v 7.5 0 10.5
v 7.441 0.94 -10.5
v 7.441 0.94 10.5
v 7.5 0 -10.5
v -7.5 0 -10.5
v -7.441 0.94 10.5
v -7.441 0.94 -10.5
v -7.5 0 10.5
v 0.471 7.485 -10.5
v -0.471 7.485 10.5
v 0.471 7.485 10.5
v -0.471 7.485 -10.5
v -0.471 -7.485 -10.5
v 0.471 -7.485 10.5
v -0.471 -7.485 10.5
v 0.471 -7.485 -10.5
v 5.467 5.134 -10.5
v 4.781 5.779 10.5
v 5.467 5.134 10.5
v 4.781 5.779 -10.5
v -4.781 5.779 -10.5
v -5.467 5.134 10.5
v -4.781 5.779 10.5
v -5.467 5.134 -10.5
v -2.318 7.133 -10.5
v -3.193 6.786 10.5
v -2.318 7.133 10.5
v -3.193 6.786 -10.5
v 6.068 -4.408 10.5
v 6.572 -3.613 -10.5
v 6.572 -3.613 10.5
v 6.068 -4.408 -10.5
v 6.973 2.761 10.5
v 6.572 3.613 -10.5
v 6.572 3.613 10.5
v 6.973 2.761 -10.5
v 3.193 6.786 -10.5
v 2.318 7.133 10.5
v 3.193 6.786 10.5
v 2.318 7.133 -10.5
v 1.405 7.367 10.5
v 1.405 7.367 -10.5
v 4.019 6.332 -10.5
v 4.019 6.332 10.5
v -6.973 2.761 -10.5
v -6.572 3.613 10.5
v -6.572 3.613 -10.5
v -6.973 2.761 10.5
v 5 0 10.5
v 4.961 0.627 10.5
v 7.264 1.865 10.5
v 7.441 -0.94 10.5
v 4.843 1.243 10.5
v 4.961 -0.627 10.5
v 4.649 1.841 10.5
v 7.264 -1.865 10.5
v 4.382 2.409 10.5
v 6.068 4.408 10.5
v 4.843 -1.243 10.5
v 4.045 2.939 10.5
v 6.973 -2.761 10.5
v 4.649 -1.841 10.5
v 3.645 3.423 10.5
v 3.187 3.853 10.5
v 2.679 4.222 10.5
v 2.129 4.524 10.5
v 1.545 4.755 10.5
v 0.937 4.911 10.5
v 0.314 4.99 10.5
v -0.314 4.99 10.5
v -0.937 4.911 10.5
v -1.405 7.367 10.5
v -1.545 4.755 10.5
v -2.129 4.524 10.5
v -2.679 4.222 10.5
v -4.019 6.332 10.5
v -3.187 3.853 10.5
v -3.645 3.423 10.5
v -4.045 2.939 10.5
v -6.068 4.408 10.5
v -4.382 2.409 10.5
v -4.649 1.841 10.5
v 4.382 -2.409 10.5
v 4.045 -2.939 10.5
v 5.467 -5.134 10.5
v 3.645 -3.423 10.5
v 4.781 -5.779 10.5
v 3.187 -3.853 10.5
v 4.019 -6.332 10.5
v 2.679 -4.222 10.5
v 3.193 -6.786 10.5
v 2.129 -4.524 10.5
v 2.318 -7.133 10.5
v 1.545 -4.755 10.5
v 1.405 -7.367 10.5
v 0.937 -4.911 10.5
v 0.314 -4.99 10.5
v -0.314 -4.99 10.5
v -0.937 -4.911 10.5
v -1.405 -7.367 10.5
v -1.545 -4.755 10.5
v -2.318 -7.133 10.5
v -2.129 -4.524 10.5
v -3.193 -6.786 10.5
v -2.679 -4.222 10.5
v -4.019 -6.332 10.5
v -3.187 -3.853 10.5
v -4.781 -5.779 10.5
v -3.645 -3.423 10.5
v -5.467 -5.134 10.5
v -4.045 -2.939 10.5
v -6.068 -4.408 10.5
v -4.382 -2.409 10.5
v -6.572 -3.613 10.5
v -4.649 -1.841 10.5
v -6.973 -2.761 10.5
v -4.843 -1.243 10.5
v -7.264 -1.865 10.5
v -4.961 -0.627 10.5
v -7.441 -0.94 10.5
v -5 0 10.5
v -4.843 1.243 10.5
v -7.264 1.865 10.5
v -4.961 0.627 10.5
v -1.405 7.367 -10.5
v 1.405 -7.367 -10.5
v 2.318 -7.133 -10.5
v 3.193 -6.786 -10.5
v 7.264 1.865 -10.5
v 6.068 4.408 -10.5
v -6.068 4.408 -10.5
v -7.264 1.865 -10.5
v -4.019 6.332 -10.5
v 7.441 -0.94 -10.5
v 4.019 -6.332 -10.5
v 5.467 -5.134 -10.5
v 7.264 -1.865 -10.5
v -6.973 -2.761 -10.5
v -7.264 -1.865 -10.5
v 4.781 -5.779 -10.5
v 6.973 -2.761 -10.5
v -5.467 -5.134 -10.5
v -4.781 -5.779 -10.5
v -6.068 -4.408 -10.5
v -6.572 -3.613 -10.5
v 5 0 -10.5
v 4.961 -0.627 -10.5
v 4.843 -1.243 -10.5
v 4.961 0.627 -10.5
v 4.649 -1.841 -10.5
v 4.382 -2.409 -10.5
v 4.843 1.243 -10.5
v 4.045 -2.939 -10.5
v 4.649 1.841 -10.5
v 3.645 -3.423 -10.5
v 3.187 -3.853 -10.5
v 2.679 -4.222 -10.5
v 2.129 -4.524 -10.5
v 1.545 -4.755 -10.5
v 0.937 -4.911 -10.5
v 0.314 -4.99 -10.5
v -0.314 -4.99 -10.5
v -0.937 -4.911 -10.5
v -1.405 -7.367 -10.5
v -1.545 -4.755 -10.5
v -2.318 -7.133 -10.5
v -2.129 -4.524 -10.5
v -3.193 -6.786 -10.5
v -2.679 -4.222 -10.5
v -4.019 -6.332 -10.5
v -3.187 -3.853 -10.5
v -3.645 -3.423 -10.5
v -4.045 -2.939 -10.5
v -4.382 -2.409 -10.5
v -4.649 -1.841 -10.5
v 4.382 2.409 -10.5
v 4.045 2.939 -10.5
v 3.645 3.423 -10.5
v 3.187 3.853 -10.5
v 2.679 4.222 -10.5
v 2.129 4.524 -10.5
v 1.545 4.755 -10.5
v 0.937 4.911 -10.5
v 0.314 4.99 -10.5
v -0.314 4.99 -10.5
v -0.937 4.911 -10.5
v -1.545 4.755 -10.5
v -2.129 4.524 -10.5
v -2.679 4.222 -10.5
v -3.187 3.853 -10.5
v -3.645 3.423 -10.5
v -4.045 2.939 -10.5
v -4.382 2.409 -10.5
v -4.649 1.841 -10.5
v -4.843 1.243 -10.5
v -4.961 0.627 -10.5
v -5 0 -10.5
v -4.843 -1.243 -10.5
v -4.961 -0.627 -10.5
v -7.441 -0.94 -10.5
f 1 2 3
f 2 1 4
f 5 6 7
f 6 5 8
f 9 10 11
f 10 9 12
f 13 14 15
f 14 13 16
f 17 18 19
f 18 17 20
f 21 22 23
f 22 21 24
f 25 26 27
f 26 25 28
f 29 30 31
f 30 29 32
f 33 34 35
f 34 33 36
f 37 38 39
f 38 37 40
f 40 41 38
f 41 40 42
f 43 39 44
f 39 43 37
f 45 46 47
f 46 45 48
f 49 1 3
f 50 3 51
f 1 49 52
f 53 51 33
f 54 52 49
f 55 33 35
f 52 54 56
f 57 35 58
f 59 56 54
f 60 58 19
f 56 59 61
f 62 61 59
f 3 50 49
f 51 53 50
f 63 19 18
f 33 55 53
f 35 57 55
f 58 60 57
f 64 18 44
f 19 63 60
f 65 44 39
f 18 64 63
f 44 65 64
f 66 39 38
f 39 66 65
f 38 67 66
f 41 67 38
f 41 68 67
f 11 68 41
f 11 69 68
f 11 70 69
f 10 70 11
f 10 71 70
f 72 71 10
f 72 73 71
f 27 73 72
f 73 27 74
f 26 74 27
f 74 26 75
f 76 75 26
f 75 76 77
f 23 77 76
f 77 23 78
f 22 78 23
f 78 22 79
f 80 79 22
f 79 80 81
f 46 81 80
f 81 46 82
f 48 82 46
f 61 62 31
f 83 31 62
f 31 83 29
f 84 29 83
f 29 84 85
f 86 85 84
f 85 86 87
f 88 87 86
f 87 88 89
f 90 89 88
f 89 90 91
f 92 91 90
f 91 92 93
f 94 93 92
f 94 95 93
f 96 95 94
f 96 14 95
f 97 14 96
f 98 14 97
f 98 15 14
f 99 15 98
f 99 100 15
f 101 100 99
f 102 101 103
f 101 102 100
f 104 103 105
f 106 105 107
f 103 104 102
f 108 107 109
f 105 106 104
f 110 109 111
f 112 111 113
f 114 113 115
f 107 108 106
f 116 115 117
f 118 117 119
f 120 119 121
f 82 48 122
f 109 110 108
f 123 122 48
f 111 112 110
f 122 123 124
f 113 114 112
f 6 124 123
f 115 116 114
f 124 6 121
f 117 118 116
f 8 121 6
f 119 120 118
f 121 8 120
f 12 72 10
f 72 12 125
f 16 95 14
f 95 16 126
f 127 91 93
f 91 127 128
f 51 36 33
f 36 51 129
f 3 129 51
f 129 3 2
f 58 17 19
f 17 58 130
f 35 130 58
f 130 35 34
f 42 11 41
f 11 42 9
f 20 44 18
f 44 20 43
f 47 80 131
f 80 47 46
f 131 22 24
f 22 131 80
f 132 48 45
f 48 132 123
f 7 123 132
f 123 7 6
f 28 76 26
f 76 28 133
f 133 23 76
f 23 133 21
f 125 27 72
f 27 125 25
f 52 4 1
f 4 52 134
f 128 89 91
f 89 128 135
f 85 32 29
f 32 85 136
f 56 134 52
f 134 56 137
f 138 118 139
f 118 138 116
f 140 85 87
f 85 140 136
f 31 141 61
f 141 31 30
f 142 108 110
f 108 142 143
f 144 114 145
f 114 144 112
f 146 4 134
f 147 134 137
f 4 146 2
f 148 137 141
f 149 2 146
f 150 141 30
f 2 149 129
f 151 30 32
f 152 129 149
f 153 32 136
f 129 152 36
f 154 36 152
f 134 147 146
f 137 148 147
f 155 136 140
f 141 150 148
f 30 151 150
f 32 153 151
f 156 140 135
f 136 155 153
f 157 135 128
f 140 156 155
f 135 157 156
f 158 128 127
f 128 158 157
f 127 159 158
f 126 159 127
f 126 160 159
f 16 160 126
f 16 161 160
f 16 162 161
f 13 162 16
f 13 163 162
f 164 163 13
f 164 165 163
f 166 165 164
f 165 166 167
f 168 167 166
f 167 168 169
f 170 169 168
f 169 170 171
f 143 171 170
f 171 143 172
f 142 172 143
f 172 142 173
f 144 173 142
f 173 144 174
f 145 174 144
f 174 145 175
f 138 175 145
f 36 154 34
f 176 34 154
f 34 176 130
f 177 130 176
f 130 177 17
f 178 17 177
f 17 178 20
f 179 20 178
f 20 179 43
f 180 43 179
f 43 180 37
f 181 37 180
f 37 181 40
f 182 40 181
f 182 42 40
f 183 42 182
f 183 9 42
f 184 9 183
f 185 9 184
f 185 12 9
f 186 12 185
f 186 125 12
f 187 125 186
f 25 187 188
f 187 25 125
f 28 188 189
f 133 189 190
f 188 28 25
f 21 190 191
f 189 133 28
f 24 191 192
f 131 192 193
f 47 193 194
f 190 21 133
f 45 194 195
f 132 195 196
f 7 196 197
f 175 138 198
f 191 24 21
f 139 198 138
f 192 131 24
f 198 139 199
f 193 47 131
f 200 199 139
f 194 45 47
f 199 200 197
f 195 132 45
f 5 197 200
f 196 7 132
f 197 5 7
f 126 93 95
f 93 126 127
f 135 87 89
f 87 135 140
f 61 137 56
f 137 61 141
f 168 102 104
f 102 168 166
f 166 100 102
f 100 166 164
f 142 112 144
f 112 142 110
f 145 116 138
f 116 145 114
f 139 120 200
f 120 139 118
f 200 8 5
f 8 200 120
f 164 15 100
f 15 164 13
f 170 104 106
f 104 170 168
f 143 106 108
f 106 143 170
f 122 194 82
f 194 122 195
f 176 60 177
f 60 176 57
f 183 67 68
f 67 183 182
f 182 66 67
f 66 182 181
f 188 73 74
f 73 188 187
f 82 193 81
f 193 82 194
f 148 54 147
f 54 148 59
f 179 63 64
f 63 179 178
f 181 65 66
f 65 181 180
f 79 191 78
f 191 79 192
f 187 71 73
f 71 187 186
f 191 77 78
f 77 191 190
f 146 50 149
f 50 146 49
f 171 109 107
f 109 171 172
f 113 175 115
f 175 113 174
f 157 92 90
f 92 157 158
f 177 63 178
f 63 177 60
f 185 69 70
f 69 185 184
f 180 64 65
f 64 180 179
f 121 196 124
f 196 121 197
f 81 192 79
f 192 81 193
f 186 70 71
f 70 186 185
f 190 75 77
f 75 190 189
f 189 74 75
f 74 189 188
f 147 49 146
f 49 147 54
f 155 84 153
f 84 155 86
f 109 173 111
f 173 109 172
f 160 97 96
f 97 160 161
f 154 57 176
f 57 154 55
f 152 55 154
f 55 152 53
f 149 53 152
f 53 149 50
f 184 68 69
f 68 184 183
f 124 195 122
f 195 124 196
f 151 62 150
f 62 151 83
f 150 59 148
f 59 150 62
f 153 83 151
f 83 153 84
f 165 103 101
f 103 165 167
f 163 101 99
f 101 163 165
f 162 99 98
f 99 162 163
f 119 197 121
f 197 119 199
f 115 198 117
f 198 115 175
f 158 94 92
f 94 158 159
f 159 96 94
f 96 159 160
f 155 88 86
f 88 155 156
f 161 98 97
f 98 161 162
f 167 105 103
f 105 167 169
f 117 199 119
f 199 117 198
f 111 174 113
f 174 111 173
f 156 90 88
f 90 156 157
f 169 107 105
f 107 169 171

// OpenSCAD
$fn = 50;


difference() {
	union() {
		translate(v = [0, 0, -10.5000000000]) {
			cylinder(h = 21, r = 7.5000000000);
		}
	}
	union() {
		translate(v = [0, 0, -100.0000000000]) {
			cylinder(h = 200, r = 5);
		}
	}
}
